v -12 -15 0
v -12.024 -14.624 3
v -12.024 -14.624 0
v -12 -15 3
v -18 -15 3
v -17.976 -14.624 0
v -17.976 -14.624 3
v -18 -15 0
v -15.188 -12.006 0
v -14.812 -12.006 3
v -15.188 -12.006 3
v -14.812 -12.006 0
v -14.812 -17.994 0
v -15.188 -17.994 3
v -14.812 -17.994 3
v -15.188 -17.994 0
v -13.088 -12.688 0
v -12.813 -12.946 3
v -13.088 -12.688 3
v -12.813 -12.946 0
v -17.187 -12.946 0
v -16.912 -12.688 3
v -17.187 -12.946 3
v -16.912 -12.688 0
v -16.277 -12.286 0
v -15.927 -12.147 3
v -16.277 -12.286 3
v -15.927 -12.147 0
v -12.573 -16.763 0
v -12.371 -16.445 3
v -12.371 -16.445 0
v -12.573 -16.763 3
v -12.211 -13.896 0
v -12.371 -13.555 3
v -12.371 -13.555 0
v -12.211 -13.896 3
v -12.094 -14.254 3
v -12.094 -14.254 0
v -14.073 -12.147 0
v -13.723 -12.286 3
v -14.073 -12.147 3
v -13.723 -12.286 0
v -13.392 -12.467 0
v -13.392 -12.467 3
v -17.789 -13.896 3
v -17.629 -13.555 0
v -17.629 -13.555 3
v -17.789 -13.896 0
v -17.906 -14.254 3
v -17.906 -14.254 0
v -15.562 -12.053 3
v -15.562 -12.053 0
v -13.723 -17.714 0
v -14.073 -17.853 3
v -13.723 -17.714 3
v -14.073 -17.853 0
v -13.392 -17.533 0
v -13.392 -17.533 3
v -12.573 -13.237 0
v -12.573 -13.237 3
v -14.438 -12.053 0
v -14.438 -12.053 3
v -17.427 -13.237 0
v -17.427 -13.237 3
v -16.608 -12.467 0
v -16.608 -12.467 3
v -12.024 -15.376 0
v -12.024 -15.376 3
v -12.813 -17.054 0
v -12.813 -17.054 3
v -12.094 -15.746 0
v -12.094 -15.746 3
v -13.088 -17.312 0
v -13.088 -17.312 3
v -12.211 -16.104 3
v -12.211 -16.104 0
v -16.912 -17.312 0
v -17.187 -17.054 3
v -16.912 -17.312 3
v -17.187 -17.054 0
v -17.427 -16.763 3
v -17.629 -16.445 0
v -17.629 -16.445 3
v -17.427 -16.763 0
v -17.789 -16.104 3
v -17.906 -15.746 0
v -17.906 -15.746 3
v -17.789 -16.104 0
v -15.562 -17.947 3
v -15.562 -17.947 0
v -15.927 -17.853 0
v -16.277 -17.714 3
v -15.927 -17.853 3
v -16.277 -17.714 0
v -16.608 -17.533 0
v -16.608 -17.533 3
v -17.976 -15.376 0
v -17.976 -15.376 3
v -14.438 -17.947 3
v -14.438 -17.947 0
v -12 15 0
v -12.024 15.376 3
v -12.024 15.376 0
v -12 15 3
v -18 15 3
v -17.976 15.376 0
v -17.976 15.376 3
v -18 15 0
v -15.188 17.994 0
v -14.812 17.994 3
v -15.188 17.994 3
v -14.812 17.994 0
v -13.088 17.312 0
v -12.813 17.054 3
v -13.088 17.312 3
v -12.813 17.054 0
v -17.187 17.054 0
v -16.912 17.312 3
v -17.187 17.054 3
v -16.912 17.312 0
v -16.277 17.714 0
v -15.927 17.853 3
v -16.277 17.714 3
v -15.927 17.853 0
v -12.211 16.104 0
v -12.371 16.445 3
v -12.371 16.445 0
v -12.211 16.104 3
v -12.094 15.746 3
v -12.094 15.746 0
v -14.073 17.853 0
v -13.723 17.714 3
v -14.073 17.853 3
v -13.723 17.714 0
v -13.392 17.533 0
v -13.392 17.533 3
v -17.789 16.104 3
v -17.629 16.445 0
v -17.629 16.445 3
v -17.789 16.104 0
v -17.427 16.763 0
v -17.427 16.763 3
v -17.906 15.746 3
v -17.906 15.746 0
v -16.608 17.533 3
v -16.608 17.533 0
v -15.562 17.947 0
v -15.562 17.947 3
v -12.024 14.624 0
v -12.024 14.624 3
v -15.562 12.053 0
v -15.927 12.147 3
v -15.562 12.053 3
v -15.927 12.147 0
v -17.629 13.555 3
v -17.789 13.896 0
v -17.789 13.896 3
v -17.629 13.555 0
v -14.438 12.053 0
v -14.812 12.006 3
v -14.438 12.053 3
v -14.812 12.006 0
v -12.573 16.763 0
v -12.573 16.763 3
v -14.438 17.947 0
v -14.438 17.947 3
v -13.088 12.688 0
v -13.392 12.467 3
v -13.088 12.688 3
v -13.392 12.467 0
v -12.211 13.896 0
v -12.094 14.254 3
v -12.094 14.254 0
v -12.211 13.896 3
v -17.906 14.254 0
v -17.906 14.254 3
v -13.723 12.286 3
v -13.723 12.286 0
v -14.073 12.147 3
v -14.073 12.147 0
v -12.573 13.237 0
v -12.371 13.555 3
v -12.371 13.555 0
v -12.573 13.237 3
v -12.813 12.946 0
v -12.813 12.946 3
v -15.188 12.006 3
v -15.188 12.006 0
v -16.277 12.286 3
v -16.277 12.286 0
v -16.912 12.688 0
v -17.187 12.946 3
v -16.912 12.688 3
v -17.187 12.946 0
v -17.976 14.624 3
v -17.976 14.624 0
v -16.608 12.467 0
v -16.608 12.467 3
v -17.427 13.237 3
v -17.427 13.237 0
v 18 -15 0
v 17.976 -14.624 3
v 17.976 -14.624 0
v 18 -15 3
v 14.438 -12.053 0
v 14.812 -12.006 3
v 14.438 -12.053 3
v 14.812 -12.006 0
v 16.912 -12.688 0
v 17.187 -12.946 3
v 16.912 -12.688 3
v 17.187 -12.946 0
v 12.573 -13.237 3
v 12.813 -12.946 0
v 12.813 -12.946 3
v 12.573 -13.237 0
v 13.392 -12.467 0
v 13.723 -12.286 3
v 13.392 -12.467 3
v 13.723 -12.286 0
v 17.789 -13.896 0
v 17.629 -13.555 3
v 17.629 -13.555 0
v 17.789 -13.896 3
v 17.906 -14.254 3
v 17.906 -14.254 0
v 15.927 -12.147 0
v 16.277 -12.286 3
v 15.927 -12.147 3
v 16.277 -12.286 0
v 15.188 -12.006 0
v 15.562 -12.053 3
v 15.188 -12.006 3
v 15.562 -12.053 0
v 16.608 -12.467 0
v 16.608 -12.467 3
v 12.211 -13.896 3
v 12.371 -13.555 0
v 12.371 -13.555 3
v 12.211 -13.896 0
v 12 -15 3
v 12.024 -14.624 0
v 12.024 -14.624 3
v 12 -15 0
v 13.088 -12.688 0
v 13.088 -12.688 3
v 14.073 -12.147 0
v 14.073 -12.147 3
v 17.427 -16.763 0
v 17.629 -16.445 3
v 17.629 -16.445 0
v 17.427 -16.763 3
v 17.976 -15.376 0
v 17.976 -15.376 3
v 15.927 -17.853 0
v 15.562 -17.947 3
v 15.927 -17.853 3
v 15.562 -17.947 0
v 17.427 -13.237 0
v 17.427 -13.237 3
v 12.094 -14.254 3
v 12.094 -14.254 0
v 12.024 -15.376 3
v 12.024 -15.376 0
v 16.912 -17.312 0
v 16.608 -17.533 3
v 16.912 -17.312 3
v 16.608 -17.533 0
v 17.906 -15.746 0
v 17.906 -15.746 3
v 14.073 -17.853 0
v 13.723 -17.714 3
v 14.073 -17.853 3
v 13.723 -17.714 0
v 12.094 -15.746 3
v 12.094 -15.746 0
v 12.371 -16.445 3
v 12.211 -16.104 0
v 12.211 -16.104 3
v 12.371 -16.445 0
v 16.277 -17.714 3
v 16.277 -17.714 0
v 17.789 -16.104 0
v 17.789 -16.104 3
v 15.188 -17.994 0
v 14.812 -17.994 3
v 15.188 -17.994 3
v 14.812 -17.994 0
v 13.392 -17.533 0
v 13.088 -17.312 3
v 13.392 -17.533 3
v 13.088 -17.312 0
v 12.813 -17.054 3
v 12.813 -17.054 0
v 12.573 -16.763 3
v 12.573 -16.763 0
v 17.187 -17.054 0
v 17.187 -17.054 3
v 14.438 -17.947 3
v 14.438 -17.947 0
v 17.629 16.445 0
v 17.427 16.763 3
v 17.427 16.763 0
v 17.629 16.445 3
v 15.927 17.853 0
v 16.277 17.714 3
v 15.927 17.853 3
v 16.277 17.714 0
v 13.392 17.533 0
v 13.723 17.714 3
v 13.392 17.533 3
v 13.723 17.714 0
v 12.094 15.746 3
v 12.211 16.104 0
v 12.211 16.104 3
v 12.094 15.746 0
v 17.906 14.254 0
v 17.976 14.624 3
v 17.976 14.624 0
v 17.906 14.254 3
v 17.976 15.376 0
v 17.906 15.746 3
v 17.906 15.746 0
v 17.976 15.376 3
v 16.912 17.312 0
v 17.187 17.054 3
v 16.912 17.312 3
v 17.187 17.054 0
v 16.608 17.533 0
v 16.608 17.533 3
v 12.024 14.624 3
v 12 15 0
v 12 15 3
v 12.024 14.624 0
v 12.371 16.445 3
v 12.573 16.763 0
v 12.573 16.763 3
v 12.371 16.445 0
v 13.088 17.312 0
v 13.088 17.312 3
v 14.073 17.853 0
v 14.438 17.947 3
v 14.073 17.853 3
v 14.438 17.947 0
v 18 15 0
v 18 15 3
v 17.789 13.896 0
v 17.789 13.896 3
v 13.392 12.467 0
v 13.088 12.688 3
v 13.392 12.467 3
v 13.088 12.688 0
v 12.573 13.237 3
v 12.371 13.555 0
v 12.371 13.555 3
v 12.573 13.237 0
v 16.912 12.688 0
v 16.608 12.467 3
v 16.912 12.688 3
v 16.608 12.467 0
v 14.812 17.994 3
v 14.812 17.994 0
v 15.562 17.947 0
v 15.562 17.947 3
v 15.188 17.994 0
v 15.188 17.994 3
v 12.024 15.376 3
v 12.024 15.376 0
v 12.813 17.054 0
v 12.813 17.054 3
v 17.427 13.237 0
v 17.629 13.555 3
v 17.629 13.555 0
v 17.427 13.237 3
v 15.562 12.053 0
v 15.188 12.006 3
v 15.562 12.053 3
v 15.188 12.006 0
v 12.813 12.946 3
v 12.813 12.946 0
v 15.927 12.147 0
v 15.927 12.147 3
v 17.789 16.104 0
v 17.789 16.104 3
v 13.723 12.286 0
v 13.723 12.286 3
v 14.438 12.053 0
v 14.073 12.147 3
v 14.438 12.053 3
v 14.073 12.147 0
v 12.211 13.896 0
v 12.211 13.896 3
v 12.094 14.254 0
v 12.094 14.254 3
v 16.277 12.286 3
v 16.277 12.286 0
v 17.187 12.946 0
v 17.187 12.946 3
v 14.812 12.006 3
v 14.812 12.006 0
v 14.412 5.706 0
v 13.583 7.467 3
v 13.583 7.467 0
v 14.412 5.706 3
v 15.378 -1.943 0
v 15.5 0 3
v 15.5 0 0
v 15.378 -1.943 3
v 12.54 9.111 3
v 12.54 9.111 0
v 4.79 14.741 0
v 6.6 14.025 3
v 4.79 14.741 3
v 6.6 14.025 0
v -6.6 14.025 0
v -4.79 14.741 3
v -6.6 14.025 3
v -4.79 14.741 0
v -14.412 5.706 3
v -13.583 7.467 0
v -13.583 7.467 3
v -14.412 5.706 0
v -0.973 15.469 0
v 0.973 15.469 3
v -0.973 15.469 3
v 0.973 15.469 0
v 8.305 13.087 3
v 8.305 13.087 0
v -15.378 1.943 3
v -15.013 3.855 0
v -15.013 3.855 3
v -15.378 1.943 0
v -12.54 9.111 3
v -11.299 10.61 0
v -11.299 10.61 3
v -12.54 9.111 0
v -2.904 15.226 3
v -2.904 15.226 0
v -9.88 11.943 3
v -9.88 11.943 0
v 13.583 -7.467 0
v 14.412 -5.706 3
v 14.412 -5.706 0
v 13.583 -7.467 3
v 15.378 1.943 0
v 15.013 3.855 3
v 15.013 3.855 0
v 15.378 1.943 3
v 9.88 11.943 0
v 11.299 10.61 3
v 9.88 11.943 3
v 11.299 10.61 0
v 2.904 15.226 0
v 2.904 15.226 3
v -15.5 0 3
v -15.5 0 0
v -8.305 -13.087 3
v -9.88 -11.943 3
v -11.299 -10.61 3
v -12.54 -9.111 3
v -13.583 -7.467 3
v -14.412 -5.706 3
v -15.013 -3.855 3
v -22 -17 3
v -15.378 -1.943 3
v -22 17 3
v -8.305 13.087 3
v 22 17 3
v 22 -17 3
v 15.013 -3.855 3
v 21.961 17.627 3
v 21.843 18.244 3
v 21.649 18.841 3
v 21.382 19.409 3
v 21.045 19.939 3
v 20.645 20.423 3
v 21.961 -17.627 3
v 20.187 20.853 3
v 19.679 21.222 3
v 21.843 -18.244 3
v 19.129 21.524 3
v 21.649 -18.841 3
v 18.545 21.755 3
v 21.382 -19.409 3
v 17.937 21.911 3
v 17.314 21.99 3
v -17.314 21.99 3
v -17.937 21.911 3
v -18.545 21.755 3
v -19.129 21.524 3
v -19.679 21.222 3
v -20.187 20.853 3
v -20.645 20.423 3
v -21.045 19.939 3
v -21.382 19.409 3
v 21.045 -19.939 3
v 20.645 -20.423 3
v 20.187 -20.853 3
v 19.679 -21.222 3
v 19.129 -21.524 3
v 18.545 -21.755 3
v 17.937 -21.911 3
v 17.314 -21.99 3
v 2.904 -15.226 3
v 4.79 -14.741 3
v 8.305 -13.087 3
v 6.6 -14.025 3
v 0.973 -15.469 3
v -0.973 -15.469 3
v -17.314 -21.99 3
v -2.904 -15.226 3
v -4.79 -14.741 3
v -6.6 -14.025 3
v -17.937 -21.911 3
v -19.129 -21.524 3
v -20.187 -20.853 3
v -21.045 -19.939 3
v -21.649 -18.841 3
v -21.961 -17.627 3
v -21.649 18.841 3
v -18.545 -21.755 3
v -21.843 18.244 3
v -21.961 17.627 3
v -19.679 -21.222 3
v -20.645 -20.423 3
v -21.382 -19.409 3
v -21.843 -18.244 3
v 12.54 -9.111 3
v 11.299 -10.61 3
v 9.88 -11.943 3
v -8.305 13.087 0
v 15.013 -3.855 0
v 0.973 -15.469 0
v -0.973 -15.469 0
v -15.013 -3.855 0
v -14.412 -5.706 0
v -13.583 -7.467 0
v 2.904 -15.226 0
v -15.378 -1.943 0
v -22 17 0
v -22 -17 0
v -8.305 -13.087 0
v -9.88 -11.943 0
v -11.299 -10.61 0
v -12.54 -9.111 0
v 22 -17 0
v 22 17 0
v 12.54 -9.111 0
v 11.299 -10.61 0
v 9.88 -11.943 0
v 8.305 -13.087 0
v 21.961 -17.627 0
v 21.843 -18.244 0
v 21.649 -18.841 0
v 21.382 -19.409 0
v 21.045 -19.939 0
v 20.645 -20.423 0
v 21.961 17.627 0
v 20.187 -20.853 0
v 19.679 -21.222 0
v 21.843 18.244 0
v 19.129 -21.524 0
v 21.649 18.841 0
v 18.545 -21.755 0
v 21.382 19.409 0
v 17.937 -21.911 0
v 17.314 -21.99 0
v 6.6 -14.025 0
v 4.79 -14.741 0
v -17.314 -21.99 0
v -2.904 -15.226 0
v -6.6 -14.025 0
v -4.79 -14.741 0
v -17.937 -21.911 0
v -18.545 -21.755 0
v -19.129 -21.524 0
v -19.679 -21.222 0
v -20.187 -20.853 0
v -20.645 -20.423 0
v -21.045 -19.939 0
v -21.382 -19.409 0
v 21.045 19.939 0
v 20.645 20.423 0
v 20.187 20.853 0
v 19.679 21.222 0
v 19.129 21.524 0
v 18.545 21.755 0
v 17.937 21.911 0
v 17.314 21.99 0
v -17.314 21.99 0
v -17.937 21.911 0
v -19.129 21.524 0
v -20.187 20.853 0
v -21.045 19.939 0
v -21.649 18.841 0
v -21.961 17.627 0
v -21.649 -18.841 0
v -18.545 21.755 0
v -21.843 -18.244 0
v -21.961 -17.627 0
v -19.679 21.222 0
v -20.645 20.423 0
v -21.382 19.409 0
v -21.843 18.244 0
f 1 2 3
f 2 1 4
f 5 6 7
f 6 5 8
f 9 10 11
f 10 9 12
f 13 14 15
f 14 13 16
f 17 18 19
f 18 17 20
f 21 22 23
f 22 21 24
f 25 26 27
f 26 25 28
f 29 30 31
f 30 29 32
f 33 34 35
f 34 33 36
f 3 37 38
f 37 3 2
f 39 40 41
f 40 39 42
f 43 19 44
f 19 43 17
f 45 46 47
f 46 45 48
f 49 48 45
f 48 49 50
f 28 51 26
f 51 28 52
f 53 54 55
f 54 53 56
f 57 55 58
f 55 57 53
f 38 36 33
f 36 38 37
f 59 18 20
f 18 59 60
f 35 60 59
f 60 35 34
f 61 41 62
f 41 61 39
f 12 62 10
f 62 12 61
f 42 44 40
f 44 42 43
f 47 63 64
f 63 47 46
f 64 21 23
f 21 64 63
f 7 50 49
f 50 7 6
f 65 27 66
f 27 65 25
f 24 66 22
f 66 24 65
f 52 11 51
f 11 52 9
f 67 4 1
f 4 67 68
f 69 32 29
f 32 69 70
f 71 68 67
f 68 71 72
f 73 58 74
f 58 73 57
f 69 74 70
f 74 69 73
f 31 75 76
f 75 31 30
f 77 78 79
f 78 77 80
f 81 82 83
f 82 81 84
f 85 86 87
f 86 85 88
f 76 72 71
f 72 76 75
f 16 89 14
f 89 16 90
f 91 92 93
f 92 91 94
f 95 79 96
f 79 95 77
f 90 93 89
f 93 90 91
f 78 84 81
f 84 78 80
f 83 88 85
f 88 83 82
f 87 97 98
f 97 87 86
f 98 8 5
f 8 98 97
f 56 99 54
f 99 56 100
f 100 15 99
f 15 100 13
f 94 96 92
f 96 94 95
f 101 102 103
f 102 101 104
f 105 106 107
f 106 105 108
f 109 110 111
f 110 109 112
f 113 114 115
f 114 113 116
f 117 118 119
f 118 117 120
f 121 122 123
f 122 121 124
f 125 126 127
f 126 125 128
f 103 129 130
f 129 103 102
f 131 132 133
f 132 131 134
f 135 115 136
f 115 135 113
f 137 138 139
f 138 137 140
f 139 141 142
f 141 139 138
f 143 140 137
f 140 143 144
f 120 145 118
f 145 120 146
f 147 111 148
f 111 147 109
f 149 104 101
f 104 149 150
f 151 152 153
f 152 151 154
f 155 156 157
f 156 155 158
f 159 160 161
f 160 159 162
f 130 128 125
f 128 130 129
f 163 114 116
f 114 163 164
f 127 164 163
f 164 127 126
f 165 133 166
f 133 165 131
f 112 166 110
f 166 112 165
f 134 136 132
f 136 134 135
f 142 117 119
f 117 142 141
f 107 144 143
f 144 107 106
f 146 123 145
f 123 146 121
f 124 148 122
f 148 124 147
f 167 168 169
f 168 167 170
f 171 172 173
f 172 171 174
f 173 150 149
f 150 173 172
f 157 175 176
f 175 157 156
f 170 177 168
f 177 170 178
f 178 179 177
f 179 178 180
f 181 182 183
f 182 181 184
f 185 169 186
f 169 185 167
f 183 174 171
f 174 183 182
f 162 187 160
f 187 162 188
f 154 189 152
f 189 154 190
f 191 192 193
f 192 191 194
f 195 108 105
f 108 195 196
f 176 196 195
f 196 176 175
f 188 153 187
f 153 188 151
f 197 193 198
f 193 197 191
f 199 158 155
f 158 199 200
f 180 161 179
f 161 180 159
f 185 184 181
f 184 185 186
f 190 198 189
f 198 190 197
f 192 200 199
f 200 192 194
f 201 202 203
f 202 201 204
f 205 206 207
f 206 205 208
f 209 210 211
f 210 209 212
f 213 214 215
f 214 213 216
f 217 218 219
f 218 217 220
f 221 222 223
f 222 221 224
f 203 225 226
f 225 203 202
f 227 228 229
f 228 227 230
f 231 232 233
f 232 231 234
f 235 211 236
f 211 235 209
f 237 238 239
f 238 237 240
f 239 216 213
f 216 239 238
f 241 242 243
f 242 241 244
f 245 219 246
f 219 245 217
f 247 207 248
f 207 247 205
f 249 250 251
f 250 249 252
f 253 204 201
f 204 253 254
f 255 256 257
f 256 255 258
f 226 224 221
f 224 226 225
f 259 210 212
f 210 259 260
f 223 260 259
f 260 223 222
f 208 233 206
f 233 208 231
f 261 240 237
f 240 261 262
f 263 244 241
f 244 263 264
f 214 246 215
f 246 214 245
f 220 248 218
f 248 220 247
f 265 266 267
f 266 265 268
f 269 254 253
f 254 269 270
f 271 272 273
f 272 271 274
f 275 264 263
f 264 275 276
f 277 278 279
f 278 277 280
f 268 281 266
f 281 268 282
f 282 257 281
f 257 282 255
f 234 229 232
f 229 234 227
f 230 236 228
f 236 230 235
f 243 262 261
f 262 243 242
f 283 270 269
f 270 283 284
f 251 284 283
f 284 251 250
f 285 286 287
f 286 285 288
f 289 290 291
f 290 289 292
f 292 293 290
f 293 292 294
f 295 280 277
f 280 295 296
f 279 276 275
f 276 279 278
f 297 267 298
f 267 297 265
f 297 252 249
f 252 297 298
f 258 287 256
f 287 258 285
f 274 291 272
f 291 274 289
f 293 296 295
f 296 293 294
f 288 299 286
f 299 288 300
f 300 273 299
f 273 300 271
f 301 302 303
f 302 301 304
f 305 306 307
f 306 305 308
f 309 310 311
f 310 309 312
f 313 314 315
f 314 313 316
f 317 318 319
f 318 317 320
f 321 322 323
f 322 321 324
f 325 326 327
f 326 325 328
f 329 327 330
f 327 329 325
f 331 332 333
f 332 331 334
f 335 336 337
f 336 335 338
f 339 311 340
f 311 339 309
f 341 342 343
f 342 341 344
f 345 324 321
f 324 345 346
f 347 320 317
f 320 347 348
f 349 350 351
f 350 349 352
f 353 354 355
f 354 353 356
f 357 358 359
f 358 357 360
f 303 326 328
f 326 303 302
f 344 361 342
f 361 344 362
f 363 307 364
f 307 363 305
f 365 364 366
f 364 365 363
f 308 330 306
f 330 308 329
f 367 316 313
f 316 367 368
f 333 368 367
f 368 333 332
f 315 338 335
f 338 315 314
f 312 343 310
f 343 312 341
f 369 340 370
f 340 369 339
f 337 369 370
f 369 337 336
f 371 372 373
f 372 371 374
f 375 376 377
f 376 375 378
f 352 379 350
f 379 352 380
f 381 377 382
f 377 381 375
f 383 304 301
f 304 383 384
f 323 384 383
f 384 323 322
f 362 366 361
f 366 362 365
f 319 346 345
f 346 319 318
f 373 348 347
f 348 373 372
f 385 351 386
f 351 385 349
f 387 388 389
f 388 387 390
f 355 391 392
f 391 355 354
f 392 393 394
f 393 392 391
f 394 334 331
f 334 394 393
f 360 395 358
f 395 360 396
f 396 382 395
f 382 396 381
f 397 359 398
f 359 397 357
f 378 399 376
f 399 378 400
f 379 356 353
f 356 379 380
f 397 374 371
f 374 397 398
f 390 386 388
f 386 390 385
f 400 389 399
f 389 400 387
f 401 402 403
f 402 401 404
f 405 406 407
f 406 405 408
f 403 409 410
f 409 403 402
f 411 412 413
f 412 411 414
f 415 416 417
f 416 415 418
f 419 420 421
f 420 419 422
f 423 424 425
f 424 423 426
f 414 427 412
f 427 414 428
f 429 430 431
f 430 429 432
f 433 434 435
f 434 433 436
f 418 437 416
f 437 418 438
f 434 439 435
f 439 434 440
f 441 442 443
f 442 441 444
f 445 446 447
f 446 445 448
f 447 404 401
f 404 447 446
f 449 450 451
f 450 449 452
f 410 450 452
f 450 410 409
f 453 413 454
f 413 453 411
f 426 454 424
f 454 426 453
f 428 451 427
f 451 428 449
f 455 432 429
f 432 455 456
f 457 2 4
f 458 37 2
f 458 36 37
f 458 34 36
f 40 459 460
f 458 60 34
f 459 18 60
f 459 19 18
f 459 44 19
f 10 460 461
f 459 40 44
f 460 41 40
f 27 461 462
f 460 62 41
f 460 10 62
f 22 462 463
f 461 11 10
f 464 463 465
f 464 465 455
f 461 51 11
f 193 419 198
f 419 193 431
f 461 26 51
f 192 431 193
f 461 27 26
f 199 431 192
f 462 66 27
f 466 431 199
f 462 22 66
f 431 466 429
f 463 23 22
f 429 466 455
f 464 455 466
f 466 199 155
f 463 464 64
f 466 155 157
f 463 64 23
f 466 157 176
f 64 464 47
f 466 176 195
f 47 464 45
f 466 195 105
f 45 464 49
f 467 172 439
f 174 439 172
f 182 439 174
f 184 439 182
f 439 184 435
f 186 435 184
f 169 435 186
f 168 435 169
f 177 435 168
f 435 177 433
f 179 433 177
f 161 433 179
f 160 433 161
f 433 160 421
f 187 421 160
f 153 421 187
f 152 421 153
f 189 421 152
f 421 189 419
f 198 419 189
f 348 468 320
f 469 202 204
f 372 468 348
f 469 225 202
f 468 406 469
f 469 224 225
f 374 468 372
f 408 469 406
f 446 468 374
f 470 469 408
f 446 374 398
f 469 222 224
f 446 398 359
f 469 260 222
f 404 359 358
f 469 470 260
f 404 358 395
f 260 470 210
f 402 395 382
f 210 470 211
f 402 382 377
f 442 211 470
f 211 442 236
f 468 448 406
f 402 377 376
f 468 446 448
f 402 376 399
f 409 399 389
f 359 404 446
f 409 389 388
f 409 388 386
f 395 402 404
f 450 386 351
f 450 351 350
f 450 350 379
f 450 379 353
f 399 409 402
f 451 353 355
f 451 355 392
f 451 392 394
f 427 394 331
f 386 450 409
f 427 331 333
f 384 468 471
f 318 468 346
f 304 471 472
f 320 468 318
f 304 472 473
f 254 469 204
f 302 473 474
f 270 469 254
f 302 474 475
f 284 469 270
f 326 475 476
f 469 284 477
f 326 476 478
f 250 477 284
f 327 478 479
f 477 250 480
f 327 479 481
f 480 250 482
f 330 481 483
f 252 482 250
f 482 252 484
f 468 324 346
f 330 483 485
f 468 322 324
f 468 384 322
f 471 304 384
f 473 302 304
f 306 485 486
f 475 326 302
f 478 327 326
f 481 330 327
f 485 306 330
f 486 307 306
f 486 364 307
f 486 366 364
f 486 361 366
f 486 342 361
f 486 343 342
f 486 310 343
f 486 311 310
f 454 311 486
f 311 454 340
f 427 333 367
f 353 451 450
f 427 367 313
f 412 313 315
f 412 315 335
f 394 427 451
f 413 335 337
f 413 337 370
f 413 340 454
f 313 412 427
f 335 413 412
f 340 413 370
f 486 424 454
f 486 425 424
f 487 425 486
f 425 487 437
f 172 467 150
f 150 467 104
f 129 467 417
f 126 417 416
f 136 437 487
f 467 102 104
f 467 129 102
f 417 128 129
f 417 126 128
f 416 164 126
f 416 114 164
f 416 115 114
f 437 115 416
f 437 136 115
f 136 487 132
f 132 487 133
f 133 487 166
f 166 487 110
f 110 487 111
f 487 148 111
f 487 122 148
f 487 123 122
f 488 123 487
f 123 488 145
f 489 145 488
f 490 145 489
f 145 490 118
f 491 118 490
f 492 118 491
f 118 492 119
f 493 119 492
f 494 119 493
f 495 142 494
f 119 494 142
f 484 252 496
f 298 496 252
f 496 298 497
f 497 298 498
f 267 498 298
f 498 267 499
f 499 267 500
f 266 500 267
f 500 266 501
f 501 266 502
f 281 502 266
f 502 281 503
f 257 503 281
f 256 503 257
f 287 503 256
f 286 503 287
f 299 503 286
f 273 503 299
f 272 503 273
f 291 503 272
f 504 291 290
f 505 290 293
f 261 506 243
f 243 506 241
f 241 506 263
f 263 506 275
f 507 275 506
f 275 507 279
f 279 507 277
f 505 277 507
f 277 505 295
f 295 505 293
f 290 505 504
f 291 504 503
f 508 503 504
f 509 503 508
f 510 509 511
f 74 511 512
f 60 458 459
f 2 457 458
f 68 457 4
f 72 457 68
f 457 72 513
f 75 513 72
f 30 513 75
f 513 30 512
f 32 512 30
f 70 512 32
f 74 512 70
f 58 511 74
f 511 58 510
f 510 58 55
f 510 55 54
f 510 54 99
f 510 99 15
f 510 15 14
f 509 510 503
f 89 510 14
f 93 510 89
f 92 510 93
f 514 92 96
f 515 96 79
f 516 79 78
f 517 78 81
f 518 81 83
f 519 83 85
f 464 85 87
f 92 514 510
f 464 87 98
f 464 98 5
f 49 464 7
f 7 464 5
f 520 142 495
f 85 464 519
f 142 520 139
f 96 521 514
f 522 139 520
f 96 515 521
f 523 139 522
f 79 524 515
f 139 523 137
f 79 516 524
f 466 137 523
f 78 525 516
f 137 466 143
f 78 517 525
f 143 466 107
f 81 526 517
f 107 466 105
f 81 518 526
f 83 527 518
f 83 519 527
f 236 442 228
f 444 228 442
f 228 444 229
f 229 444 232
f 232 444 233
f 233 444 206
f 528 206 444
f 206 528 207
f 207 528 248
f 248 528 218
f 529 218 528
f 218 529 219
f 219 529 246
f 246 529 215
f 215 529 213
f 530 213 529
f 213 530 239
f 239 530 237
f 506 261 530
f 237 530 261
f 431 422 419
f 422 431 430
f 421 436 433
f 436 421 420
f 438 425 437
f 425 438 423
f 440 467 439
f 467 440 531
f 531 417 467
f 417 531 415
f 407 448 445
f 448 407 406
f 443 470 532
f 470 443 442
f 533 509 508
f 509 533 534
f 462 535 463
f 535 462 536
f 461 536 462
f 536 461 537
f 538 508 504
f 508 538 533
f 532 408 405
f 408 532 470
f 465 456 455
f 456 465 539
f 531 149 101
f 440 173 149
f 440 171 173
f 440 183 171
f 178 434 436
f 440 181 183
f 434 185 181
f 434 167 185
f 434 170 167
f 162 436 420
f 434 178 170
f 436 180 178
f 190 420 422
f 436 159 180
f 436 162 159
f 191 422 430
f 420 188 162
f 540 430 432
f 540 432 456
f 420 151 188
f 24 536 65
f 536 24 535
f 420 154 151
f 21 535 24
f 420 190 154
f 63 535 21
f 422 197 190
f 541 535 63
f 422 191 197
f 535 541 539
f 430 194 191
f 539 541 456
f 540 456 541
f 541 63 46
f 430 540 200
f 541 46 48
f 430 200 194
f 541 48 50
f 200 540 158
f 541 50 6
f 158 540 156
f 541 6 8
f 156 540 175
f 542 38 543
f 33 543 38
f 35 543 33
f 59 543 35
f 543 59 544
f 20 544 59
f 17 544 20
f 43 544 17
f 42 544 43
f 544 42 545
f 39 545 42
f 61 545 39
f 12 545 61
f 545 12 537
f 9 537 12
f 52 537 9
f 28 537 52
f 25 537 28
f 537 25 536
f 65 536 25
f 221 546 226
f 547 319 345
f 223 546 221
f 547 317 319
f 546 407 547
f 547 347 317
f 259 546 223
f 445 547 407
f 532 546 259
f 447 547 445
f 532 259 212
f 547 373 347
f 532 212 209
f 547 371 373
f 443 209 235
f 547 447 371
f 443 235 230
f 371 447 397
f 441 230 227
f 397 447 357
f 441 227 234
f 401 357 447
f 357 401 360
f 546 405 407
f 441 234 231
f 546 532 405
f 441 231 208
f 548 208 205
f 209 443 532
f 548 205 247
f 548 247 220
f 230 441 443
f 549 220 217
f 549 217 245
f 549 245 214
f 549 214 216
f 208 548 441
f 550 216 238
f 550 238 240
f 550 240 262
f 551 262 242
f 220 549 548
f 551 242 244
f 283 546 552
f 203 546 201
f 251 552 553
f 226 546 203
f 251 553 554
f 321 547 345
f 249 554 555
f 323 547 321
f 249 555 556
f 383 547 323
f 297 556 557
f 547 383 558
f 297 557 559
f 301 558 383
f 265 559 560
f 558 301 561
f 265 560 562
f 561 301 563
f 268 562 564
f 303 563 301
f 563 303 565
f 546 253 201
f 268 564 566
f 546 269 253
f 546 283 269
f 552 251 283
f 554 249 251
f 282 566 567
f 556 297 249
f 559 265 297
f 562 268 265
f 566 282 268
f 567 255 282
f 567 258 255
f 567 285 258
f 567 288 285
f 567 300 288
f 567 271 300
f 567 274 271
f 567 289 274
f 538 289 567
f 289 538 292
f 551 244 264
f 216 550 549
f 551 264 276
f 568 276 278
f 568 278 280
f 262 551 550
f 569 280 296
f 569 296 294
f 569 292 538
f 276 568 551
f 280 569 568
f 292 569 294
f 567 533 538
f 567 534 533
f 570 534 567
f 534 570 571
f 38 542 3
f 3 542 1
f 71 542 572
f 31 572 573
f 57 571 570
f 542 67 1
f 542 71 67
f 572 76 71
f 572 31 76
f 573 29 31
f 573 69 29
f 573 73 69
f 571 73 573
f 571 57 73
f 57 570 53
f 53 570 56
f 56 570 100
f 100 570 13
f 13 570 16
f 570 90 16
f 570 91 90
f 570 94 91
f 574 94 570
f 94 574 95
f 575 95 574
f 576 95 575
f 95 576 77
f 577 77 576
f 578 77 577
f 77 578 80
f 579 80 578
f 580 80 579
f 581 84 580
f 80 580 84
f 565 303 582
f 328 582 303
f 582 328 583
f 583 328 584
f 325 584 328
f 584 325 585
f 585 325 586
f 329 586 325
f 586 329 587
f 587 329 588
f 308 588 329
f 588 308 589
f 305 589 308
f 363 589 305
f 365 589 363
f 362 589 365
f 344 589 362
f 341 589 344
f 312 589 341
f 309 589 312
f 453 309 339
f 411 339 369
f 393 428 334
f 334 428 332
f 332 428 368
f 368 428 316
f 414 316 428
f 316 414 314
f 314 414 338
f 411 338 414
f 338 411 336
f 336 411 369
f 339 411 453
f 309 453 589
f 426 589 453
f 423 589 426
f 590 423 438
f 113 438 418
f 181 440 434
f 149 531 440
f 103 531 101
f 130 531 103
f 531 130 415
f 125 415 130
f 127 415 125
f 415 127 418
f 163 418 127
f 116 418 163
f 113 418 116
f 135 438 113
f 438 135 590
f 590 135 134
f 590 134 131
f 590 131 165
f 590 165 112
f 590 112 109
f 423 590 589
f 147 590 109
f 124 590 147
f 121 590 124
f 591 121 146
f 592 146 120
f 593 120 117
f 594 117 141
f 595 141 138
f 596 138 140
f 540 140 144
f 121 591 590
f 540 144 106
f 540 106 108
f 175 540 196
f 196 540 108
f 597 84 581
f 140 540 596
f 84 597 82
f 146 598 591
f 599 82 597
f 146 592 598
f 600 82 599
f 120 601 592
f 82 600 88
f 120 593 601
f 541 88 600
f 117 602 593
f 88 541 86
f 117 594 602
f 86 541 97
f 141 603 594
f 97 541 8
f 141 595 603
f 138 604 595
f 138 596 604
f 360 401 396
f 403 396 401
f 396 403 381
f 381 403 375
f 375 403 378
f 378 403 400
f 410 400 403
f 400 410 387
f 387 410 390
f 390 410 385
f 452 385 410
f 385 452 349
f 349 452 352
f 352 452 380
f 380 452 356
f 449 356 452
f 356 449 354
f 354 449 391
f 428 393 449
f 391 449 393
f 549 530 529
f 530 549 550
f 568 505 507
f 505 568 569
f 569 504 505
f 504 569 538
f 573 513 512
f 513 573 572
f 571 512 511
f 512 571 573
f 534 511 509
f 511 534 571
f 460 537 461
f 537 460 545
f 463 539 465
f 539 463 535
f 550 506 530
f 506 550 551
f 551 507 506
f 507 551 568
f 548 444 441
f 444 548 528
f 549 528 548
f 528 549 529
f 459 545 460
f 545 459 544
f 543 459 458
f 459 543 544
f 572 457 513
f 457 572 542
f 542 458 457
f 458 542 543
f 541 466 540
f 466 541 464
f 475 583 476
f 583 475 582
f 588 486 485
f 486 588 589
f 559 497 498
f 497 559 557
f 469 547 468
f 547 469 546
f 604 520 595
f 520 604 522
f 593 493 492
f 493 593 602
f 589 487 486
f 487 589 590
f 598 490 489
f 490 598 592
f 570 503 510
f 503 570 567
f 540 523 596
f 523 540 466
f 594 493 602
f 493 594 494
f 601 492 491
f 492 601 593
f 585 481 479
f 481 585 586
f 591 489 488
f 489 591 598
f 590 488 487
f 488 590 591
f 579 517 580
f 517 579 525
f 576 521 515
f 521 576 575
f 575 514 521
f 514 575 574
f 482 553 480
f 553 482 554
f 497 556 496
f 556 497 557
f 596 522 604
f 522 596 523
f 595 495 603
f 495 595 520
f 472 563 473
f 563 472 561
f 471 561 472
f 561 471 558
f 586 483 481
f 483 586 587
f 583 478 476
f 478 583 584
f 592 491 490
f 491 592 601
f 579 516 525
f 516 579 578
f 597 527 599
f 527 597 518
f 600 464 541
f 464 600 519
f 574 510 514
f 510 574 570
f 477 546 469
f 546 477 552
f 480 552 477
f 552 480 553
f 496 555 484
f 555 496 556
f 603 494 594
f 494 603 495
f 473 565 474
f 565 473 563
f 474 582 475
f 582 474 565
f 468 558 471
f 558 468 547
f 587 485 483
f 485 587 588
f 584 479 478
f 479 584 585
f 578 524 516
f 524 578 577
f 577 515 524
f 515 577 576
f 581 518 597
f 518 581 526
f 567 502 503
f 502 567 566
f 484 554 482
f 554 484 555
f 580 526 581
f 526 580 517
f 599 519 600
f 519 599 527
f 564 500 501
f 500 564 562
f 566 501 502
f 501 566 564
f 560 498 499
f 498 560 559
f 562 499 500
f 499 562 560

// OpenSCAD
$fn = 50;


difference() {
	union() {
		hull() {
			translate(v = [-17.0000000000, 17.0000000000, 0]) {
				cylinder(h = 3, r = 5);
			}
			translate(v = [17.0000000000, 17.0000000000, 0]) {
				cylinder(h = 3, r = 5);
			}
			translate(v = [-17.0000000000, -17.0000000000, 0]) {
				cylinder(h = 3, r = 5);
			}
			translate(v = [17.0000000000, -17.0000000000, 0]) {
				cylinder(h = 3, r = 5);
			}
		}
	}
	union() {
		#translate(v = [-15.0000000000, -15.0000000000, -100.0000000000]) {
			cylinder(h = 200, r = 3.0000000000);
		}
		#translate(v = [-15.0000000000, 15.0000000000, -100.0000000000]) {
			cylinder(h = 200, r = 3.0000000000);
		}
		#translate(v = [15.0000000000, -15.0000000000, -100.0000000000]) {
			cylinder(h = 200, r = 3.0000000000);
		}
		#translate(v = [15.0000000000, 15.0000000000, -100.0000000000]) {
			cylinder(h = 200, r = 3.0000000000);
		}
		#cylinder(h = 3, r = 15.5000000000);
	}
}
